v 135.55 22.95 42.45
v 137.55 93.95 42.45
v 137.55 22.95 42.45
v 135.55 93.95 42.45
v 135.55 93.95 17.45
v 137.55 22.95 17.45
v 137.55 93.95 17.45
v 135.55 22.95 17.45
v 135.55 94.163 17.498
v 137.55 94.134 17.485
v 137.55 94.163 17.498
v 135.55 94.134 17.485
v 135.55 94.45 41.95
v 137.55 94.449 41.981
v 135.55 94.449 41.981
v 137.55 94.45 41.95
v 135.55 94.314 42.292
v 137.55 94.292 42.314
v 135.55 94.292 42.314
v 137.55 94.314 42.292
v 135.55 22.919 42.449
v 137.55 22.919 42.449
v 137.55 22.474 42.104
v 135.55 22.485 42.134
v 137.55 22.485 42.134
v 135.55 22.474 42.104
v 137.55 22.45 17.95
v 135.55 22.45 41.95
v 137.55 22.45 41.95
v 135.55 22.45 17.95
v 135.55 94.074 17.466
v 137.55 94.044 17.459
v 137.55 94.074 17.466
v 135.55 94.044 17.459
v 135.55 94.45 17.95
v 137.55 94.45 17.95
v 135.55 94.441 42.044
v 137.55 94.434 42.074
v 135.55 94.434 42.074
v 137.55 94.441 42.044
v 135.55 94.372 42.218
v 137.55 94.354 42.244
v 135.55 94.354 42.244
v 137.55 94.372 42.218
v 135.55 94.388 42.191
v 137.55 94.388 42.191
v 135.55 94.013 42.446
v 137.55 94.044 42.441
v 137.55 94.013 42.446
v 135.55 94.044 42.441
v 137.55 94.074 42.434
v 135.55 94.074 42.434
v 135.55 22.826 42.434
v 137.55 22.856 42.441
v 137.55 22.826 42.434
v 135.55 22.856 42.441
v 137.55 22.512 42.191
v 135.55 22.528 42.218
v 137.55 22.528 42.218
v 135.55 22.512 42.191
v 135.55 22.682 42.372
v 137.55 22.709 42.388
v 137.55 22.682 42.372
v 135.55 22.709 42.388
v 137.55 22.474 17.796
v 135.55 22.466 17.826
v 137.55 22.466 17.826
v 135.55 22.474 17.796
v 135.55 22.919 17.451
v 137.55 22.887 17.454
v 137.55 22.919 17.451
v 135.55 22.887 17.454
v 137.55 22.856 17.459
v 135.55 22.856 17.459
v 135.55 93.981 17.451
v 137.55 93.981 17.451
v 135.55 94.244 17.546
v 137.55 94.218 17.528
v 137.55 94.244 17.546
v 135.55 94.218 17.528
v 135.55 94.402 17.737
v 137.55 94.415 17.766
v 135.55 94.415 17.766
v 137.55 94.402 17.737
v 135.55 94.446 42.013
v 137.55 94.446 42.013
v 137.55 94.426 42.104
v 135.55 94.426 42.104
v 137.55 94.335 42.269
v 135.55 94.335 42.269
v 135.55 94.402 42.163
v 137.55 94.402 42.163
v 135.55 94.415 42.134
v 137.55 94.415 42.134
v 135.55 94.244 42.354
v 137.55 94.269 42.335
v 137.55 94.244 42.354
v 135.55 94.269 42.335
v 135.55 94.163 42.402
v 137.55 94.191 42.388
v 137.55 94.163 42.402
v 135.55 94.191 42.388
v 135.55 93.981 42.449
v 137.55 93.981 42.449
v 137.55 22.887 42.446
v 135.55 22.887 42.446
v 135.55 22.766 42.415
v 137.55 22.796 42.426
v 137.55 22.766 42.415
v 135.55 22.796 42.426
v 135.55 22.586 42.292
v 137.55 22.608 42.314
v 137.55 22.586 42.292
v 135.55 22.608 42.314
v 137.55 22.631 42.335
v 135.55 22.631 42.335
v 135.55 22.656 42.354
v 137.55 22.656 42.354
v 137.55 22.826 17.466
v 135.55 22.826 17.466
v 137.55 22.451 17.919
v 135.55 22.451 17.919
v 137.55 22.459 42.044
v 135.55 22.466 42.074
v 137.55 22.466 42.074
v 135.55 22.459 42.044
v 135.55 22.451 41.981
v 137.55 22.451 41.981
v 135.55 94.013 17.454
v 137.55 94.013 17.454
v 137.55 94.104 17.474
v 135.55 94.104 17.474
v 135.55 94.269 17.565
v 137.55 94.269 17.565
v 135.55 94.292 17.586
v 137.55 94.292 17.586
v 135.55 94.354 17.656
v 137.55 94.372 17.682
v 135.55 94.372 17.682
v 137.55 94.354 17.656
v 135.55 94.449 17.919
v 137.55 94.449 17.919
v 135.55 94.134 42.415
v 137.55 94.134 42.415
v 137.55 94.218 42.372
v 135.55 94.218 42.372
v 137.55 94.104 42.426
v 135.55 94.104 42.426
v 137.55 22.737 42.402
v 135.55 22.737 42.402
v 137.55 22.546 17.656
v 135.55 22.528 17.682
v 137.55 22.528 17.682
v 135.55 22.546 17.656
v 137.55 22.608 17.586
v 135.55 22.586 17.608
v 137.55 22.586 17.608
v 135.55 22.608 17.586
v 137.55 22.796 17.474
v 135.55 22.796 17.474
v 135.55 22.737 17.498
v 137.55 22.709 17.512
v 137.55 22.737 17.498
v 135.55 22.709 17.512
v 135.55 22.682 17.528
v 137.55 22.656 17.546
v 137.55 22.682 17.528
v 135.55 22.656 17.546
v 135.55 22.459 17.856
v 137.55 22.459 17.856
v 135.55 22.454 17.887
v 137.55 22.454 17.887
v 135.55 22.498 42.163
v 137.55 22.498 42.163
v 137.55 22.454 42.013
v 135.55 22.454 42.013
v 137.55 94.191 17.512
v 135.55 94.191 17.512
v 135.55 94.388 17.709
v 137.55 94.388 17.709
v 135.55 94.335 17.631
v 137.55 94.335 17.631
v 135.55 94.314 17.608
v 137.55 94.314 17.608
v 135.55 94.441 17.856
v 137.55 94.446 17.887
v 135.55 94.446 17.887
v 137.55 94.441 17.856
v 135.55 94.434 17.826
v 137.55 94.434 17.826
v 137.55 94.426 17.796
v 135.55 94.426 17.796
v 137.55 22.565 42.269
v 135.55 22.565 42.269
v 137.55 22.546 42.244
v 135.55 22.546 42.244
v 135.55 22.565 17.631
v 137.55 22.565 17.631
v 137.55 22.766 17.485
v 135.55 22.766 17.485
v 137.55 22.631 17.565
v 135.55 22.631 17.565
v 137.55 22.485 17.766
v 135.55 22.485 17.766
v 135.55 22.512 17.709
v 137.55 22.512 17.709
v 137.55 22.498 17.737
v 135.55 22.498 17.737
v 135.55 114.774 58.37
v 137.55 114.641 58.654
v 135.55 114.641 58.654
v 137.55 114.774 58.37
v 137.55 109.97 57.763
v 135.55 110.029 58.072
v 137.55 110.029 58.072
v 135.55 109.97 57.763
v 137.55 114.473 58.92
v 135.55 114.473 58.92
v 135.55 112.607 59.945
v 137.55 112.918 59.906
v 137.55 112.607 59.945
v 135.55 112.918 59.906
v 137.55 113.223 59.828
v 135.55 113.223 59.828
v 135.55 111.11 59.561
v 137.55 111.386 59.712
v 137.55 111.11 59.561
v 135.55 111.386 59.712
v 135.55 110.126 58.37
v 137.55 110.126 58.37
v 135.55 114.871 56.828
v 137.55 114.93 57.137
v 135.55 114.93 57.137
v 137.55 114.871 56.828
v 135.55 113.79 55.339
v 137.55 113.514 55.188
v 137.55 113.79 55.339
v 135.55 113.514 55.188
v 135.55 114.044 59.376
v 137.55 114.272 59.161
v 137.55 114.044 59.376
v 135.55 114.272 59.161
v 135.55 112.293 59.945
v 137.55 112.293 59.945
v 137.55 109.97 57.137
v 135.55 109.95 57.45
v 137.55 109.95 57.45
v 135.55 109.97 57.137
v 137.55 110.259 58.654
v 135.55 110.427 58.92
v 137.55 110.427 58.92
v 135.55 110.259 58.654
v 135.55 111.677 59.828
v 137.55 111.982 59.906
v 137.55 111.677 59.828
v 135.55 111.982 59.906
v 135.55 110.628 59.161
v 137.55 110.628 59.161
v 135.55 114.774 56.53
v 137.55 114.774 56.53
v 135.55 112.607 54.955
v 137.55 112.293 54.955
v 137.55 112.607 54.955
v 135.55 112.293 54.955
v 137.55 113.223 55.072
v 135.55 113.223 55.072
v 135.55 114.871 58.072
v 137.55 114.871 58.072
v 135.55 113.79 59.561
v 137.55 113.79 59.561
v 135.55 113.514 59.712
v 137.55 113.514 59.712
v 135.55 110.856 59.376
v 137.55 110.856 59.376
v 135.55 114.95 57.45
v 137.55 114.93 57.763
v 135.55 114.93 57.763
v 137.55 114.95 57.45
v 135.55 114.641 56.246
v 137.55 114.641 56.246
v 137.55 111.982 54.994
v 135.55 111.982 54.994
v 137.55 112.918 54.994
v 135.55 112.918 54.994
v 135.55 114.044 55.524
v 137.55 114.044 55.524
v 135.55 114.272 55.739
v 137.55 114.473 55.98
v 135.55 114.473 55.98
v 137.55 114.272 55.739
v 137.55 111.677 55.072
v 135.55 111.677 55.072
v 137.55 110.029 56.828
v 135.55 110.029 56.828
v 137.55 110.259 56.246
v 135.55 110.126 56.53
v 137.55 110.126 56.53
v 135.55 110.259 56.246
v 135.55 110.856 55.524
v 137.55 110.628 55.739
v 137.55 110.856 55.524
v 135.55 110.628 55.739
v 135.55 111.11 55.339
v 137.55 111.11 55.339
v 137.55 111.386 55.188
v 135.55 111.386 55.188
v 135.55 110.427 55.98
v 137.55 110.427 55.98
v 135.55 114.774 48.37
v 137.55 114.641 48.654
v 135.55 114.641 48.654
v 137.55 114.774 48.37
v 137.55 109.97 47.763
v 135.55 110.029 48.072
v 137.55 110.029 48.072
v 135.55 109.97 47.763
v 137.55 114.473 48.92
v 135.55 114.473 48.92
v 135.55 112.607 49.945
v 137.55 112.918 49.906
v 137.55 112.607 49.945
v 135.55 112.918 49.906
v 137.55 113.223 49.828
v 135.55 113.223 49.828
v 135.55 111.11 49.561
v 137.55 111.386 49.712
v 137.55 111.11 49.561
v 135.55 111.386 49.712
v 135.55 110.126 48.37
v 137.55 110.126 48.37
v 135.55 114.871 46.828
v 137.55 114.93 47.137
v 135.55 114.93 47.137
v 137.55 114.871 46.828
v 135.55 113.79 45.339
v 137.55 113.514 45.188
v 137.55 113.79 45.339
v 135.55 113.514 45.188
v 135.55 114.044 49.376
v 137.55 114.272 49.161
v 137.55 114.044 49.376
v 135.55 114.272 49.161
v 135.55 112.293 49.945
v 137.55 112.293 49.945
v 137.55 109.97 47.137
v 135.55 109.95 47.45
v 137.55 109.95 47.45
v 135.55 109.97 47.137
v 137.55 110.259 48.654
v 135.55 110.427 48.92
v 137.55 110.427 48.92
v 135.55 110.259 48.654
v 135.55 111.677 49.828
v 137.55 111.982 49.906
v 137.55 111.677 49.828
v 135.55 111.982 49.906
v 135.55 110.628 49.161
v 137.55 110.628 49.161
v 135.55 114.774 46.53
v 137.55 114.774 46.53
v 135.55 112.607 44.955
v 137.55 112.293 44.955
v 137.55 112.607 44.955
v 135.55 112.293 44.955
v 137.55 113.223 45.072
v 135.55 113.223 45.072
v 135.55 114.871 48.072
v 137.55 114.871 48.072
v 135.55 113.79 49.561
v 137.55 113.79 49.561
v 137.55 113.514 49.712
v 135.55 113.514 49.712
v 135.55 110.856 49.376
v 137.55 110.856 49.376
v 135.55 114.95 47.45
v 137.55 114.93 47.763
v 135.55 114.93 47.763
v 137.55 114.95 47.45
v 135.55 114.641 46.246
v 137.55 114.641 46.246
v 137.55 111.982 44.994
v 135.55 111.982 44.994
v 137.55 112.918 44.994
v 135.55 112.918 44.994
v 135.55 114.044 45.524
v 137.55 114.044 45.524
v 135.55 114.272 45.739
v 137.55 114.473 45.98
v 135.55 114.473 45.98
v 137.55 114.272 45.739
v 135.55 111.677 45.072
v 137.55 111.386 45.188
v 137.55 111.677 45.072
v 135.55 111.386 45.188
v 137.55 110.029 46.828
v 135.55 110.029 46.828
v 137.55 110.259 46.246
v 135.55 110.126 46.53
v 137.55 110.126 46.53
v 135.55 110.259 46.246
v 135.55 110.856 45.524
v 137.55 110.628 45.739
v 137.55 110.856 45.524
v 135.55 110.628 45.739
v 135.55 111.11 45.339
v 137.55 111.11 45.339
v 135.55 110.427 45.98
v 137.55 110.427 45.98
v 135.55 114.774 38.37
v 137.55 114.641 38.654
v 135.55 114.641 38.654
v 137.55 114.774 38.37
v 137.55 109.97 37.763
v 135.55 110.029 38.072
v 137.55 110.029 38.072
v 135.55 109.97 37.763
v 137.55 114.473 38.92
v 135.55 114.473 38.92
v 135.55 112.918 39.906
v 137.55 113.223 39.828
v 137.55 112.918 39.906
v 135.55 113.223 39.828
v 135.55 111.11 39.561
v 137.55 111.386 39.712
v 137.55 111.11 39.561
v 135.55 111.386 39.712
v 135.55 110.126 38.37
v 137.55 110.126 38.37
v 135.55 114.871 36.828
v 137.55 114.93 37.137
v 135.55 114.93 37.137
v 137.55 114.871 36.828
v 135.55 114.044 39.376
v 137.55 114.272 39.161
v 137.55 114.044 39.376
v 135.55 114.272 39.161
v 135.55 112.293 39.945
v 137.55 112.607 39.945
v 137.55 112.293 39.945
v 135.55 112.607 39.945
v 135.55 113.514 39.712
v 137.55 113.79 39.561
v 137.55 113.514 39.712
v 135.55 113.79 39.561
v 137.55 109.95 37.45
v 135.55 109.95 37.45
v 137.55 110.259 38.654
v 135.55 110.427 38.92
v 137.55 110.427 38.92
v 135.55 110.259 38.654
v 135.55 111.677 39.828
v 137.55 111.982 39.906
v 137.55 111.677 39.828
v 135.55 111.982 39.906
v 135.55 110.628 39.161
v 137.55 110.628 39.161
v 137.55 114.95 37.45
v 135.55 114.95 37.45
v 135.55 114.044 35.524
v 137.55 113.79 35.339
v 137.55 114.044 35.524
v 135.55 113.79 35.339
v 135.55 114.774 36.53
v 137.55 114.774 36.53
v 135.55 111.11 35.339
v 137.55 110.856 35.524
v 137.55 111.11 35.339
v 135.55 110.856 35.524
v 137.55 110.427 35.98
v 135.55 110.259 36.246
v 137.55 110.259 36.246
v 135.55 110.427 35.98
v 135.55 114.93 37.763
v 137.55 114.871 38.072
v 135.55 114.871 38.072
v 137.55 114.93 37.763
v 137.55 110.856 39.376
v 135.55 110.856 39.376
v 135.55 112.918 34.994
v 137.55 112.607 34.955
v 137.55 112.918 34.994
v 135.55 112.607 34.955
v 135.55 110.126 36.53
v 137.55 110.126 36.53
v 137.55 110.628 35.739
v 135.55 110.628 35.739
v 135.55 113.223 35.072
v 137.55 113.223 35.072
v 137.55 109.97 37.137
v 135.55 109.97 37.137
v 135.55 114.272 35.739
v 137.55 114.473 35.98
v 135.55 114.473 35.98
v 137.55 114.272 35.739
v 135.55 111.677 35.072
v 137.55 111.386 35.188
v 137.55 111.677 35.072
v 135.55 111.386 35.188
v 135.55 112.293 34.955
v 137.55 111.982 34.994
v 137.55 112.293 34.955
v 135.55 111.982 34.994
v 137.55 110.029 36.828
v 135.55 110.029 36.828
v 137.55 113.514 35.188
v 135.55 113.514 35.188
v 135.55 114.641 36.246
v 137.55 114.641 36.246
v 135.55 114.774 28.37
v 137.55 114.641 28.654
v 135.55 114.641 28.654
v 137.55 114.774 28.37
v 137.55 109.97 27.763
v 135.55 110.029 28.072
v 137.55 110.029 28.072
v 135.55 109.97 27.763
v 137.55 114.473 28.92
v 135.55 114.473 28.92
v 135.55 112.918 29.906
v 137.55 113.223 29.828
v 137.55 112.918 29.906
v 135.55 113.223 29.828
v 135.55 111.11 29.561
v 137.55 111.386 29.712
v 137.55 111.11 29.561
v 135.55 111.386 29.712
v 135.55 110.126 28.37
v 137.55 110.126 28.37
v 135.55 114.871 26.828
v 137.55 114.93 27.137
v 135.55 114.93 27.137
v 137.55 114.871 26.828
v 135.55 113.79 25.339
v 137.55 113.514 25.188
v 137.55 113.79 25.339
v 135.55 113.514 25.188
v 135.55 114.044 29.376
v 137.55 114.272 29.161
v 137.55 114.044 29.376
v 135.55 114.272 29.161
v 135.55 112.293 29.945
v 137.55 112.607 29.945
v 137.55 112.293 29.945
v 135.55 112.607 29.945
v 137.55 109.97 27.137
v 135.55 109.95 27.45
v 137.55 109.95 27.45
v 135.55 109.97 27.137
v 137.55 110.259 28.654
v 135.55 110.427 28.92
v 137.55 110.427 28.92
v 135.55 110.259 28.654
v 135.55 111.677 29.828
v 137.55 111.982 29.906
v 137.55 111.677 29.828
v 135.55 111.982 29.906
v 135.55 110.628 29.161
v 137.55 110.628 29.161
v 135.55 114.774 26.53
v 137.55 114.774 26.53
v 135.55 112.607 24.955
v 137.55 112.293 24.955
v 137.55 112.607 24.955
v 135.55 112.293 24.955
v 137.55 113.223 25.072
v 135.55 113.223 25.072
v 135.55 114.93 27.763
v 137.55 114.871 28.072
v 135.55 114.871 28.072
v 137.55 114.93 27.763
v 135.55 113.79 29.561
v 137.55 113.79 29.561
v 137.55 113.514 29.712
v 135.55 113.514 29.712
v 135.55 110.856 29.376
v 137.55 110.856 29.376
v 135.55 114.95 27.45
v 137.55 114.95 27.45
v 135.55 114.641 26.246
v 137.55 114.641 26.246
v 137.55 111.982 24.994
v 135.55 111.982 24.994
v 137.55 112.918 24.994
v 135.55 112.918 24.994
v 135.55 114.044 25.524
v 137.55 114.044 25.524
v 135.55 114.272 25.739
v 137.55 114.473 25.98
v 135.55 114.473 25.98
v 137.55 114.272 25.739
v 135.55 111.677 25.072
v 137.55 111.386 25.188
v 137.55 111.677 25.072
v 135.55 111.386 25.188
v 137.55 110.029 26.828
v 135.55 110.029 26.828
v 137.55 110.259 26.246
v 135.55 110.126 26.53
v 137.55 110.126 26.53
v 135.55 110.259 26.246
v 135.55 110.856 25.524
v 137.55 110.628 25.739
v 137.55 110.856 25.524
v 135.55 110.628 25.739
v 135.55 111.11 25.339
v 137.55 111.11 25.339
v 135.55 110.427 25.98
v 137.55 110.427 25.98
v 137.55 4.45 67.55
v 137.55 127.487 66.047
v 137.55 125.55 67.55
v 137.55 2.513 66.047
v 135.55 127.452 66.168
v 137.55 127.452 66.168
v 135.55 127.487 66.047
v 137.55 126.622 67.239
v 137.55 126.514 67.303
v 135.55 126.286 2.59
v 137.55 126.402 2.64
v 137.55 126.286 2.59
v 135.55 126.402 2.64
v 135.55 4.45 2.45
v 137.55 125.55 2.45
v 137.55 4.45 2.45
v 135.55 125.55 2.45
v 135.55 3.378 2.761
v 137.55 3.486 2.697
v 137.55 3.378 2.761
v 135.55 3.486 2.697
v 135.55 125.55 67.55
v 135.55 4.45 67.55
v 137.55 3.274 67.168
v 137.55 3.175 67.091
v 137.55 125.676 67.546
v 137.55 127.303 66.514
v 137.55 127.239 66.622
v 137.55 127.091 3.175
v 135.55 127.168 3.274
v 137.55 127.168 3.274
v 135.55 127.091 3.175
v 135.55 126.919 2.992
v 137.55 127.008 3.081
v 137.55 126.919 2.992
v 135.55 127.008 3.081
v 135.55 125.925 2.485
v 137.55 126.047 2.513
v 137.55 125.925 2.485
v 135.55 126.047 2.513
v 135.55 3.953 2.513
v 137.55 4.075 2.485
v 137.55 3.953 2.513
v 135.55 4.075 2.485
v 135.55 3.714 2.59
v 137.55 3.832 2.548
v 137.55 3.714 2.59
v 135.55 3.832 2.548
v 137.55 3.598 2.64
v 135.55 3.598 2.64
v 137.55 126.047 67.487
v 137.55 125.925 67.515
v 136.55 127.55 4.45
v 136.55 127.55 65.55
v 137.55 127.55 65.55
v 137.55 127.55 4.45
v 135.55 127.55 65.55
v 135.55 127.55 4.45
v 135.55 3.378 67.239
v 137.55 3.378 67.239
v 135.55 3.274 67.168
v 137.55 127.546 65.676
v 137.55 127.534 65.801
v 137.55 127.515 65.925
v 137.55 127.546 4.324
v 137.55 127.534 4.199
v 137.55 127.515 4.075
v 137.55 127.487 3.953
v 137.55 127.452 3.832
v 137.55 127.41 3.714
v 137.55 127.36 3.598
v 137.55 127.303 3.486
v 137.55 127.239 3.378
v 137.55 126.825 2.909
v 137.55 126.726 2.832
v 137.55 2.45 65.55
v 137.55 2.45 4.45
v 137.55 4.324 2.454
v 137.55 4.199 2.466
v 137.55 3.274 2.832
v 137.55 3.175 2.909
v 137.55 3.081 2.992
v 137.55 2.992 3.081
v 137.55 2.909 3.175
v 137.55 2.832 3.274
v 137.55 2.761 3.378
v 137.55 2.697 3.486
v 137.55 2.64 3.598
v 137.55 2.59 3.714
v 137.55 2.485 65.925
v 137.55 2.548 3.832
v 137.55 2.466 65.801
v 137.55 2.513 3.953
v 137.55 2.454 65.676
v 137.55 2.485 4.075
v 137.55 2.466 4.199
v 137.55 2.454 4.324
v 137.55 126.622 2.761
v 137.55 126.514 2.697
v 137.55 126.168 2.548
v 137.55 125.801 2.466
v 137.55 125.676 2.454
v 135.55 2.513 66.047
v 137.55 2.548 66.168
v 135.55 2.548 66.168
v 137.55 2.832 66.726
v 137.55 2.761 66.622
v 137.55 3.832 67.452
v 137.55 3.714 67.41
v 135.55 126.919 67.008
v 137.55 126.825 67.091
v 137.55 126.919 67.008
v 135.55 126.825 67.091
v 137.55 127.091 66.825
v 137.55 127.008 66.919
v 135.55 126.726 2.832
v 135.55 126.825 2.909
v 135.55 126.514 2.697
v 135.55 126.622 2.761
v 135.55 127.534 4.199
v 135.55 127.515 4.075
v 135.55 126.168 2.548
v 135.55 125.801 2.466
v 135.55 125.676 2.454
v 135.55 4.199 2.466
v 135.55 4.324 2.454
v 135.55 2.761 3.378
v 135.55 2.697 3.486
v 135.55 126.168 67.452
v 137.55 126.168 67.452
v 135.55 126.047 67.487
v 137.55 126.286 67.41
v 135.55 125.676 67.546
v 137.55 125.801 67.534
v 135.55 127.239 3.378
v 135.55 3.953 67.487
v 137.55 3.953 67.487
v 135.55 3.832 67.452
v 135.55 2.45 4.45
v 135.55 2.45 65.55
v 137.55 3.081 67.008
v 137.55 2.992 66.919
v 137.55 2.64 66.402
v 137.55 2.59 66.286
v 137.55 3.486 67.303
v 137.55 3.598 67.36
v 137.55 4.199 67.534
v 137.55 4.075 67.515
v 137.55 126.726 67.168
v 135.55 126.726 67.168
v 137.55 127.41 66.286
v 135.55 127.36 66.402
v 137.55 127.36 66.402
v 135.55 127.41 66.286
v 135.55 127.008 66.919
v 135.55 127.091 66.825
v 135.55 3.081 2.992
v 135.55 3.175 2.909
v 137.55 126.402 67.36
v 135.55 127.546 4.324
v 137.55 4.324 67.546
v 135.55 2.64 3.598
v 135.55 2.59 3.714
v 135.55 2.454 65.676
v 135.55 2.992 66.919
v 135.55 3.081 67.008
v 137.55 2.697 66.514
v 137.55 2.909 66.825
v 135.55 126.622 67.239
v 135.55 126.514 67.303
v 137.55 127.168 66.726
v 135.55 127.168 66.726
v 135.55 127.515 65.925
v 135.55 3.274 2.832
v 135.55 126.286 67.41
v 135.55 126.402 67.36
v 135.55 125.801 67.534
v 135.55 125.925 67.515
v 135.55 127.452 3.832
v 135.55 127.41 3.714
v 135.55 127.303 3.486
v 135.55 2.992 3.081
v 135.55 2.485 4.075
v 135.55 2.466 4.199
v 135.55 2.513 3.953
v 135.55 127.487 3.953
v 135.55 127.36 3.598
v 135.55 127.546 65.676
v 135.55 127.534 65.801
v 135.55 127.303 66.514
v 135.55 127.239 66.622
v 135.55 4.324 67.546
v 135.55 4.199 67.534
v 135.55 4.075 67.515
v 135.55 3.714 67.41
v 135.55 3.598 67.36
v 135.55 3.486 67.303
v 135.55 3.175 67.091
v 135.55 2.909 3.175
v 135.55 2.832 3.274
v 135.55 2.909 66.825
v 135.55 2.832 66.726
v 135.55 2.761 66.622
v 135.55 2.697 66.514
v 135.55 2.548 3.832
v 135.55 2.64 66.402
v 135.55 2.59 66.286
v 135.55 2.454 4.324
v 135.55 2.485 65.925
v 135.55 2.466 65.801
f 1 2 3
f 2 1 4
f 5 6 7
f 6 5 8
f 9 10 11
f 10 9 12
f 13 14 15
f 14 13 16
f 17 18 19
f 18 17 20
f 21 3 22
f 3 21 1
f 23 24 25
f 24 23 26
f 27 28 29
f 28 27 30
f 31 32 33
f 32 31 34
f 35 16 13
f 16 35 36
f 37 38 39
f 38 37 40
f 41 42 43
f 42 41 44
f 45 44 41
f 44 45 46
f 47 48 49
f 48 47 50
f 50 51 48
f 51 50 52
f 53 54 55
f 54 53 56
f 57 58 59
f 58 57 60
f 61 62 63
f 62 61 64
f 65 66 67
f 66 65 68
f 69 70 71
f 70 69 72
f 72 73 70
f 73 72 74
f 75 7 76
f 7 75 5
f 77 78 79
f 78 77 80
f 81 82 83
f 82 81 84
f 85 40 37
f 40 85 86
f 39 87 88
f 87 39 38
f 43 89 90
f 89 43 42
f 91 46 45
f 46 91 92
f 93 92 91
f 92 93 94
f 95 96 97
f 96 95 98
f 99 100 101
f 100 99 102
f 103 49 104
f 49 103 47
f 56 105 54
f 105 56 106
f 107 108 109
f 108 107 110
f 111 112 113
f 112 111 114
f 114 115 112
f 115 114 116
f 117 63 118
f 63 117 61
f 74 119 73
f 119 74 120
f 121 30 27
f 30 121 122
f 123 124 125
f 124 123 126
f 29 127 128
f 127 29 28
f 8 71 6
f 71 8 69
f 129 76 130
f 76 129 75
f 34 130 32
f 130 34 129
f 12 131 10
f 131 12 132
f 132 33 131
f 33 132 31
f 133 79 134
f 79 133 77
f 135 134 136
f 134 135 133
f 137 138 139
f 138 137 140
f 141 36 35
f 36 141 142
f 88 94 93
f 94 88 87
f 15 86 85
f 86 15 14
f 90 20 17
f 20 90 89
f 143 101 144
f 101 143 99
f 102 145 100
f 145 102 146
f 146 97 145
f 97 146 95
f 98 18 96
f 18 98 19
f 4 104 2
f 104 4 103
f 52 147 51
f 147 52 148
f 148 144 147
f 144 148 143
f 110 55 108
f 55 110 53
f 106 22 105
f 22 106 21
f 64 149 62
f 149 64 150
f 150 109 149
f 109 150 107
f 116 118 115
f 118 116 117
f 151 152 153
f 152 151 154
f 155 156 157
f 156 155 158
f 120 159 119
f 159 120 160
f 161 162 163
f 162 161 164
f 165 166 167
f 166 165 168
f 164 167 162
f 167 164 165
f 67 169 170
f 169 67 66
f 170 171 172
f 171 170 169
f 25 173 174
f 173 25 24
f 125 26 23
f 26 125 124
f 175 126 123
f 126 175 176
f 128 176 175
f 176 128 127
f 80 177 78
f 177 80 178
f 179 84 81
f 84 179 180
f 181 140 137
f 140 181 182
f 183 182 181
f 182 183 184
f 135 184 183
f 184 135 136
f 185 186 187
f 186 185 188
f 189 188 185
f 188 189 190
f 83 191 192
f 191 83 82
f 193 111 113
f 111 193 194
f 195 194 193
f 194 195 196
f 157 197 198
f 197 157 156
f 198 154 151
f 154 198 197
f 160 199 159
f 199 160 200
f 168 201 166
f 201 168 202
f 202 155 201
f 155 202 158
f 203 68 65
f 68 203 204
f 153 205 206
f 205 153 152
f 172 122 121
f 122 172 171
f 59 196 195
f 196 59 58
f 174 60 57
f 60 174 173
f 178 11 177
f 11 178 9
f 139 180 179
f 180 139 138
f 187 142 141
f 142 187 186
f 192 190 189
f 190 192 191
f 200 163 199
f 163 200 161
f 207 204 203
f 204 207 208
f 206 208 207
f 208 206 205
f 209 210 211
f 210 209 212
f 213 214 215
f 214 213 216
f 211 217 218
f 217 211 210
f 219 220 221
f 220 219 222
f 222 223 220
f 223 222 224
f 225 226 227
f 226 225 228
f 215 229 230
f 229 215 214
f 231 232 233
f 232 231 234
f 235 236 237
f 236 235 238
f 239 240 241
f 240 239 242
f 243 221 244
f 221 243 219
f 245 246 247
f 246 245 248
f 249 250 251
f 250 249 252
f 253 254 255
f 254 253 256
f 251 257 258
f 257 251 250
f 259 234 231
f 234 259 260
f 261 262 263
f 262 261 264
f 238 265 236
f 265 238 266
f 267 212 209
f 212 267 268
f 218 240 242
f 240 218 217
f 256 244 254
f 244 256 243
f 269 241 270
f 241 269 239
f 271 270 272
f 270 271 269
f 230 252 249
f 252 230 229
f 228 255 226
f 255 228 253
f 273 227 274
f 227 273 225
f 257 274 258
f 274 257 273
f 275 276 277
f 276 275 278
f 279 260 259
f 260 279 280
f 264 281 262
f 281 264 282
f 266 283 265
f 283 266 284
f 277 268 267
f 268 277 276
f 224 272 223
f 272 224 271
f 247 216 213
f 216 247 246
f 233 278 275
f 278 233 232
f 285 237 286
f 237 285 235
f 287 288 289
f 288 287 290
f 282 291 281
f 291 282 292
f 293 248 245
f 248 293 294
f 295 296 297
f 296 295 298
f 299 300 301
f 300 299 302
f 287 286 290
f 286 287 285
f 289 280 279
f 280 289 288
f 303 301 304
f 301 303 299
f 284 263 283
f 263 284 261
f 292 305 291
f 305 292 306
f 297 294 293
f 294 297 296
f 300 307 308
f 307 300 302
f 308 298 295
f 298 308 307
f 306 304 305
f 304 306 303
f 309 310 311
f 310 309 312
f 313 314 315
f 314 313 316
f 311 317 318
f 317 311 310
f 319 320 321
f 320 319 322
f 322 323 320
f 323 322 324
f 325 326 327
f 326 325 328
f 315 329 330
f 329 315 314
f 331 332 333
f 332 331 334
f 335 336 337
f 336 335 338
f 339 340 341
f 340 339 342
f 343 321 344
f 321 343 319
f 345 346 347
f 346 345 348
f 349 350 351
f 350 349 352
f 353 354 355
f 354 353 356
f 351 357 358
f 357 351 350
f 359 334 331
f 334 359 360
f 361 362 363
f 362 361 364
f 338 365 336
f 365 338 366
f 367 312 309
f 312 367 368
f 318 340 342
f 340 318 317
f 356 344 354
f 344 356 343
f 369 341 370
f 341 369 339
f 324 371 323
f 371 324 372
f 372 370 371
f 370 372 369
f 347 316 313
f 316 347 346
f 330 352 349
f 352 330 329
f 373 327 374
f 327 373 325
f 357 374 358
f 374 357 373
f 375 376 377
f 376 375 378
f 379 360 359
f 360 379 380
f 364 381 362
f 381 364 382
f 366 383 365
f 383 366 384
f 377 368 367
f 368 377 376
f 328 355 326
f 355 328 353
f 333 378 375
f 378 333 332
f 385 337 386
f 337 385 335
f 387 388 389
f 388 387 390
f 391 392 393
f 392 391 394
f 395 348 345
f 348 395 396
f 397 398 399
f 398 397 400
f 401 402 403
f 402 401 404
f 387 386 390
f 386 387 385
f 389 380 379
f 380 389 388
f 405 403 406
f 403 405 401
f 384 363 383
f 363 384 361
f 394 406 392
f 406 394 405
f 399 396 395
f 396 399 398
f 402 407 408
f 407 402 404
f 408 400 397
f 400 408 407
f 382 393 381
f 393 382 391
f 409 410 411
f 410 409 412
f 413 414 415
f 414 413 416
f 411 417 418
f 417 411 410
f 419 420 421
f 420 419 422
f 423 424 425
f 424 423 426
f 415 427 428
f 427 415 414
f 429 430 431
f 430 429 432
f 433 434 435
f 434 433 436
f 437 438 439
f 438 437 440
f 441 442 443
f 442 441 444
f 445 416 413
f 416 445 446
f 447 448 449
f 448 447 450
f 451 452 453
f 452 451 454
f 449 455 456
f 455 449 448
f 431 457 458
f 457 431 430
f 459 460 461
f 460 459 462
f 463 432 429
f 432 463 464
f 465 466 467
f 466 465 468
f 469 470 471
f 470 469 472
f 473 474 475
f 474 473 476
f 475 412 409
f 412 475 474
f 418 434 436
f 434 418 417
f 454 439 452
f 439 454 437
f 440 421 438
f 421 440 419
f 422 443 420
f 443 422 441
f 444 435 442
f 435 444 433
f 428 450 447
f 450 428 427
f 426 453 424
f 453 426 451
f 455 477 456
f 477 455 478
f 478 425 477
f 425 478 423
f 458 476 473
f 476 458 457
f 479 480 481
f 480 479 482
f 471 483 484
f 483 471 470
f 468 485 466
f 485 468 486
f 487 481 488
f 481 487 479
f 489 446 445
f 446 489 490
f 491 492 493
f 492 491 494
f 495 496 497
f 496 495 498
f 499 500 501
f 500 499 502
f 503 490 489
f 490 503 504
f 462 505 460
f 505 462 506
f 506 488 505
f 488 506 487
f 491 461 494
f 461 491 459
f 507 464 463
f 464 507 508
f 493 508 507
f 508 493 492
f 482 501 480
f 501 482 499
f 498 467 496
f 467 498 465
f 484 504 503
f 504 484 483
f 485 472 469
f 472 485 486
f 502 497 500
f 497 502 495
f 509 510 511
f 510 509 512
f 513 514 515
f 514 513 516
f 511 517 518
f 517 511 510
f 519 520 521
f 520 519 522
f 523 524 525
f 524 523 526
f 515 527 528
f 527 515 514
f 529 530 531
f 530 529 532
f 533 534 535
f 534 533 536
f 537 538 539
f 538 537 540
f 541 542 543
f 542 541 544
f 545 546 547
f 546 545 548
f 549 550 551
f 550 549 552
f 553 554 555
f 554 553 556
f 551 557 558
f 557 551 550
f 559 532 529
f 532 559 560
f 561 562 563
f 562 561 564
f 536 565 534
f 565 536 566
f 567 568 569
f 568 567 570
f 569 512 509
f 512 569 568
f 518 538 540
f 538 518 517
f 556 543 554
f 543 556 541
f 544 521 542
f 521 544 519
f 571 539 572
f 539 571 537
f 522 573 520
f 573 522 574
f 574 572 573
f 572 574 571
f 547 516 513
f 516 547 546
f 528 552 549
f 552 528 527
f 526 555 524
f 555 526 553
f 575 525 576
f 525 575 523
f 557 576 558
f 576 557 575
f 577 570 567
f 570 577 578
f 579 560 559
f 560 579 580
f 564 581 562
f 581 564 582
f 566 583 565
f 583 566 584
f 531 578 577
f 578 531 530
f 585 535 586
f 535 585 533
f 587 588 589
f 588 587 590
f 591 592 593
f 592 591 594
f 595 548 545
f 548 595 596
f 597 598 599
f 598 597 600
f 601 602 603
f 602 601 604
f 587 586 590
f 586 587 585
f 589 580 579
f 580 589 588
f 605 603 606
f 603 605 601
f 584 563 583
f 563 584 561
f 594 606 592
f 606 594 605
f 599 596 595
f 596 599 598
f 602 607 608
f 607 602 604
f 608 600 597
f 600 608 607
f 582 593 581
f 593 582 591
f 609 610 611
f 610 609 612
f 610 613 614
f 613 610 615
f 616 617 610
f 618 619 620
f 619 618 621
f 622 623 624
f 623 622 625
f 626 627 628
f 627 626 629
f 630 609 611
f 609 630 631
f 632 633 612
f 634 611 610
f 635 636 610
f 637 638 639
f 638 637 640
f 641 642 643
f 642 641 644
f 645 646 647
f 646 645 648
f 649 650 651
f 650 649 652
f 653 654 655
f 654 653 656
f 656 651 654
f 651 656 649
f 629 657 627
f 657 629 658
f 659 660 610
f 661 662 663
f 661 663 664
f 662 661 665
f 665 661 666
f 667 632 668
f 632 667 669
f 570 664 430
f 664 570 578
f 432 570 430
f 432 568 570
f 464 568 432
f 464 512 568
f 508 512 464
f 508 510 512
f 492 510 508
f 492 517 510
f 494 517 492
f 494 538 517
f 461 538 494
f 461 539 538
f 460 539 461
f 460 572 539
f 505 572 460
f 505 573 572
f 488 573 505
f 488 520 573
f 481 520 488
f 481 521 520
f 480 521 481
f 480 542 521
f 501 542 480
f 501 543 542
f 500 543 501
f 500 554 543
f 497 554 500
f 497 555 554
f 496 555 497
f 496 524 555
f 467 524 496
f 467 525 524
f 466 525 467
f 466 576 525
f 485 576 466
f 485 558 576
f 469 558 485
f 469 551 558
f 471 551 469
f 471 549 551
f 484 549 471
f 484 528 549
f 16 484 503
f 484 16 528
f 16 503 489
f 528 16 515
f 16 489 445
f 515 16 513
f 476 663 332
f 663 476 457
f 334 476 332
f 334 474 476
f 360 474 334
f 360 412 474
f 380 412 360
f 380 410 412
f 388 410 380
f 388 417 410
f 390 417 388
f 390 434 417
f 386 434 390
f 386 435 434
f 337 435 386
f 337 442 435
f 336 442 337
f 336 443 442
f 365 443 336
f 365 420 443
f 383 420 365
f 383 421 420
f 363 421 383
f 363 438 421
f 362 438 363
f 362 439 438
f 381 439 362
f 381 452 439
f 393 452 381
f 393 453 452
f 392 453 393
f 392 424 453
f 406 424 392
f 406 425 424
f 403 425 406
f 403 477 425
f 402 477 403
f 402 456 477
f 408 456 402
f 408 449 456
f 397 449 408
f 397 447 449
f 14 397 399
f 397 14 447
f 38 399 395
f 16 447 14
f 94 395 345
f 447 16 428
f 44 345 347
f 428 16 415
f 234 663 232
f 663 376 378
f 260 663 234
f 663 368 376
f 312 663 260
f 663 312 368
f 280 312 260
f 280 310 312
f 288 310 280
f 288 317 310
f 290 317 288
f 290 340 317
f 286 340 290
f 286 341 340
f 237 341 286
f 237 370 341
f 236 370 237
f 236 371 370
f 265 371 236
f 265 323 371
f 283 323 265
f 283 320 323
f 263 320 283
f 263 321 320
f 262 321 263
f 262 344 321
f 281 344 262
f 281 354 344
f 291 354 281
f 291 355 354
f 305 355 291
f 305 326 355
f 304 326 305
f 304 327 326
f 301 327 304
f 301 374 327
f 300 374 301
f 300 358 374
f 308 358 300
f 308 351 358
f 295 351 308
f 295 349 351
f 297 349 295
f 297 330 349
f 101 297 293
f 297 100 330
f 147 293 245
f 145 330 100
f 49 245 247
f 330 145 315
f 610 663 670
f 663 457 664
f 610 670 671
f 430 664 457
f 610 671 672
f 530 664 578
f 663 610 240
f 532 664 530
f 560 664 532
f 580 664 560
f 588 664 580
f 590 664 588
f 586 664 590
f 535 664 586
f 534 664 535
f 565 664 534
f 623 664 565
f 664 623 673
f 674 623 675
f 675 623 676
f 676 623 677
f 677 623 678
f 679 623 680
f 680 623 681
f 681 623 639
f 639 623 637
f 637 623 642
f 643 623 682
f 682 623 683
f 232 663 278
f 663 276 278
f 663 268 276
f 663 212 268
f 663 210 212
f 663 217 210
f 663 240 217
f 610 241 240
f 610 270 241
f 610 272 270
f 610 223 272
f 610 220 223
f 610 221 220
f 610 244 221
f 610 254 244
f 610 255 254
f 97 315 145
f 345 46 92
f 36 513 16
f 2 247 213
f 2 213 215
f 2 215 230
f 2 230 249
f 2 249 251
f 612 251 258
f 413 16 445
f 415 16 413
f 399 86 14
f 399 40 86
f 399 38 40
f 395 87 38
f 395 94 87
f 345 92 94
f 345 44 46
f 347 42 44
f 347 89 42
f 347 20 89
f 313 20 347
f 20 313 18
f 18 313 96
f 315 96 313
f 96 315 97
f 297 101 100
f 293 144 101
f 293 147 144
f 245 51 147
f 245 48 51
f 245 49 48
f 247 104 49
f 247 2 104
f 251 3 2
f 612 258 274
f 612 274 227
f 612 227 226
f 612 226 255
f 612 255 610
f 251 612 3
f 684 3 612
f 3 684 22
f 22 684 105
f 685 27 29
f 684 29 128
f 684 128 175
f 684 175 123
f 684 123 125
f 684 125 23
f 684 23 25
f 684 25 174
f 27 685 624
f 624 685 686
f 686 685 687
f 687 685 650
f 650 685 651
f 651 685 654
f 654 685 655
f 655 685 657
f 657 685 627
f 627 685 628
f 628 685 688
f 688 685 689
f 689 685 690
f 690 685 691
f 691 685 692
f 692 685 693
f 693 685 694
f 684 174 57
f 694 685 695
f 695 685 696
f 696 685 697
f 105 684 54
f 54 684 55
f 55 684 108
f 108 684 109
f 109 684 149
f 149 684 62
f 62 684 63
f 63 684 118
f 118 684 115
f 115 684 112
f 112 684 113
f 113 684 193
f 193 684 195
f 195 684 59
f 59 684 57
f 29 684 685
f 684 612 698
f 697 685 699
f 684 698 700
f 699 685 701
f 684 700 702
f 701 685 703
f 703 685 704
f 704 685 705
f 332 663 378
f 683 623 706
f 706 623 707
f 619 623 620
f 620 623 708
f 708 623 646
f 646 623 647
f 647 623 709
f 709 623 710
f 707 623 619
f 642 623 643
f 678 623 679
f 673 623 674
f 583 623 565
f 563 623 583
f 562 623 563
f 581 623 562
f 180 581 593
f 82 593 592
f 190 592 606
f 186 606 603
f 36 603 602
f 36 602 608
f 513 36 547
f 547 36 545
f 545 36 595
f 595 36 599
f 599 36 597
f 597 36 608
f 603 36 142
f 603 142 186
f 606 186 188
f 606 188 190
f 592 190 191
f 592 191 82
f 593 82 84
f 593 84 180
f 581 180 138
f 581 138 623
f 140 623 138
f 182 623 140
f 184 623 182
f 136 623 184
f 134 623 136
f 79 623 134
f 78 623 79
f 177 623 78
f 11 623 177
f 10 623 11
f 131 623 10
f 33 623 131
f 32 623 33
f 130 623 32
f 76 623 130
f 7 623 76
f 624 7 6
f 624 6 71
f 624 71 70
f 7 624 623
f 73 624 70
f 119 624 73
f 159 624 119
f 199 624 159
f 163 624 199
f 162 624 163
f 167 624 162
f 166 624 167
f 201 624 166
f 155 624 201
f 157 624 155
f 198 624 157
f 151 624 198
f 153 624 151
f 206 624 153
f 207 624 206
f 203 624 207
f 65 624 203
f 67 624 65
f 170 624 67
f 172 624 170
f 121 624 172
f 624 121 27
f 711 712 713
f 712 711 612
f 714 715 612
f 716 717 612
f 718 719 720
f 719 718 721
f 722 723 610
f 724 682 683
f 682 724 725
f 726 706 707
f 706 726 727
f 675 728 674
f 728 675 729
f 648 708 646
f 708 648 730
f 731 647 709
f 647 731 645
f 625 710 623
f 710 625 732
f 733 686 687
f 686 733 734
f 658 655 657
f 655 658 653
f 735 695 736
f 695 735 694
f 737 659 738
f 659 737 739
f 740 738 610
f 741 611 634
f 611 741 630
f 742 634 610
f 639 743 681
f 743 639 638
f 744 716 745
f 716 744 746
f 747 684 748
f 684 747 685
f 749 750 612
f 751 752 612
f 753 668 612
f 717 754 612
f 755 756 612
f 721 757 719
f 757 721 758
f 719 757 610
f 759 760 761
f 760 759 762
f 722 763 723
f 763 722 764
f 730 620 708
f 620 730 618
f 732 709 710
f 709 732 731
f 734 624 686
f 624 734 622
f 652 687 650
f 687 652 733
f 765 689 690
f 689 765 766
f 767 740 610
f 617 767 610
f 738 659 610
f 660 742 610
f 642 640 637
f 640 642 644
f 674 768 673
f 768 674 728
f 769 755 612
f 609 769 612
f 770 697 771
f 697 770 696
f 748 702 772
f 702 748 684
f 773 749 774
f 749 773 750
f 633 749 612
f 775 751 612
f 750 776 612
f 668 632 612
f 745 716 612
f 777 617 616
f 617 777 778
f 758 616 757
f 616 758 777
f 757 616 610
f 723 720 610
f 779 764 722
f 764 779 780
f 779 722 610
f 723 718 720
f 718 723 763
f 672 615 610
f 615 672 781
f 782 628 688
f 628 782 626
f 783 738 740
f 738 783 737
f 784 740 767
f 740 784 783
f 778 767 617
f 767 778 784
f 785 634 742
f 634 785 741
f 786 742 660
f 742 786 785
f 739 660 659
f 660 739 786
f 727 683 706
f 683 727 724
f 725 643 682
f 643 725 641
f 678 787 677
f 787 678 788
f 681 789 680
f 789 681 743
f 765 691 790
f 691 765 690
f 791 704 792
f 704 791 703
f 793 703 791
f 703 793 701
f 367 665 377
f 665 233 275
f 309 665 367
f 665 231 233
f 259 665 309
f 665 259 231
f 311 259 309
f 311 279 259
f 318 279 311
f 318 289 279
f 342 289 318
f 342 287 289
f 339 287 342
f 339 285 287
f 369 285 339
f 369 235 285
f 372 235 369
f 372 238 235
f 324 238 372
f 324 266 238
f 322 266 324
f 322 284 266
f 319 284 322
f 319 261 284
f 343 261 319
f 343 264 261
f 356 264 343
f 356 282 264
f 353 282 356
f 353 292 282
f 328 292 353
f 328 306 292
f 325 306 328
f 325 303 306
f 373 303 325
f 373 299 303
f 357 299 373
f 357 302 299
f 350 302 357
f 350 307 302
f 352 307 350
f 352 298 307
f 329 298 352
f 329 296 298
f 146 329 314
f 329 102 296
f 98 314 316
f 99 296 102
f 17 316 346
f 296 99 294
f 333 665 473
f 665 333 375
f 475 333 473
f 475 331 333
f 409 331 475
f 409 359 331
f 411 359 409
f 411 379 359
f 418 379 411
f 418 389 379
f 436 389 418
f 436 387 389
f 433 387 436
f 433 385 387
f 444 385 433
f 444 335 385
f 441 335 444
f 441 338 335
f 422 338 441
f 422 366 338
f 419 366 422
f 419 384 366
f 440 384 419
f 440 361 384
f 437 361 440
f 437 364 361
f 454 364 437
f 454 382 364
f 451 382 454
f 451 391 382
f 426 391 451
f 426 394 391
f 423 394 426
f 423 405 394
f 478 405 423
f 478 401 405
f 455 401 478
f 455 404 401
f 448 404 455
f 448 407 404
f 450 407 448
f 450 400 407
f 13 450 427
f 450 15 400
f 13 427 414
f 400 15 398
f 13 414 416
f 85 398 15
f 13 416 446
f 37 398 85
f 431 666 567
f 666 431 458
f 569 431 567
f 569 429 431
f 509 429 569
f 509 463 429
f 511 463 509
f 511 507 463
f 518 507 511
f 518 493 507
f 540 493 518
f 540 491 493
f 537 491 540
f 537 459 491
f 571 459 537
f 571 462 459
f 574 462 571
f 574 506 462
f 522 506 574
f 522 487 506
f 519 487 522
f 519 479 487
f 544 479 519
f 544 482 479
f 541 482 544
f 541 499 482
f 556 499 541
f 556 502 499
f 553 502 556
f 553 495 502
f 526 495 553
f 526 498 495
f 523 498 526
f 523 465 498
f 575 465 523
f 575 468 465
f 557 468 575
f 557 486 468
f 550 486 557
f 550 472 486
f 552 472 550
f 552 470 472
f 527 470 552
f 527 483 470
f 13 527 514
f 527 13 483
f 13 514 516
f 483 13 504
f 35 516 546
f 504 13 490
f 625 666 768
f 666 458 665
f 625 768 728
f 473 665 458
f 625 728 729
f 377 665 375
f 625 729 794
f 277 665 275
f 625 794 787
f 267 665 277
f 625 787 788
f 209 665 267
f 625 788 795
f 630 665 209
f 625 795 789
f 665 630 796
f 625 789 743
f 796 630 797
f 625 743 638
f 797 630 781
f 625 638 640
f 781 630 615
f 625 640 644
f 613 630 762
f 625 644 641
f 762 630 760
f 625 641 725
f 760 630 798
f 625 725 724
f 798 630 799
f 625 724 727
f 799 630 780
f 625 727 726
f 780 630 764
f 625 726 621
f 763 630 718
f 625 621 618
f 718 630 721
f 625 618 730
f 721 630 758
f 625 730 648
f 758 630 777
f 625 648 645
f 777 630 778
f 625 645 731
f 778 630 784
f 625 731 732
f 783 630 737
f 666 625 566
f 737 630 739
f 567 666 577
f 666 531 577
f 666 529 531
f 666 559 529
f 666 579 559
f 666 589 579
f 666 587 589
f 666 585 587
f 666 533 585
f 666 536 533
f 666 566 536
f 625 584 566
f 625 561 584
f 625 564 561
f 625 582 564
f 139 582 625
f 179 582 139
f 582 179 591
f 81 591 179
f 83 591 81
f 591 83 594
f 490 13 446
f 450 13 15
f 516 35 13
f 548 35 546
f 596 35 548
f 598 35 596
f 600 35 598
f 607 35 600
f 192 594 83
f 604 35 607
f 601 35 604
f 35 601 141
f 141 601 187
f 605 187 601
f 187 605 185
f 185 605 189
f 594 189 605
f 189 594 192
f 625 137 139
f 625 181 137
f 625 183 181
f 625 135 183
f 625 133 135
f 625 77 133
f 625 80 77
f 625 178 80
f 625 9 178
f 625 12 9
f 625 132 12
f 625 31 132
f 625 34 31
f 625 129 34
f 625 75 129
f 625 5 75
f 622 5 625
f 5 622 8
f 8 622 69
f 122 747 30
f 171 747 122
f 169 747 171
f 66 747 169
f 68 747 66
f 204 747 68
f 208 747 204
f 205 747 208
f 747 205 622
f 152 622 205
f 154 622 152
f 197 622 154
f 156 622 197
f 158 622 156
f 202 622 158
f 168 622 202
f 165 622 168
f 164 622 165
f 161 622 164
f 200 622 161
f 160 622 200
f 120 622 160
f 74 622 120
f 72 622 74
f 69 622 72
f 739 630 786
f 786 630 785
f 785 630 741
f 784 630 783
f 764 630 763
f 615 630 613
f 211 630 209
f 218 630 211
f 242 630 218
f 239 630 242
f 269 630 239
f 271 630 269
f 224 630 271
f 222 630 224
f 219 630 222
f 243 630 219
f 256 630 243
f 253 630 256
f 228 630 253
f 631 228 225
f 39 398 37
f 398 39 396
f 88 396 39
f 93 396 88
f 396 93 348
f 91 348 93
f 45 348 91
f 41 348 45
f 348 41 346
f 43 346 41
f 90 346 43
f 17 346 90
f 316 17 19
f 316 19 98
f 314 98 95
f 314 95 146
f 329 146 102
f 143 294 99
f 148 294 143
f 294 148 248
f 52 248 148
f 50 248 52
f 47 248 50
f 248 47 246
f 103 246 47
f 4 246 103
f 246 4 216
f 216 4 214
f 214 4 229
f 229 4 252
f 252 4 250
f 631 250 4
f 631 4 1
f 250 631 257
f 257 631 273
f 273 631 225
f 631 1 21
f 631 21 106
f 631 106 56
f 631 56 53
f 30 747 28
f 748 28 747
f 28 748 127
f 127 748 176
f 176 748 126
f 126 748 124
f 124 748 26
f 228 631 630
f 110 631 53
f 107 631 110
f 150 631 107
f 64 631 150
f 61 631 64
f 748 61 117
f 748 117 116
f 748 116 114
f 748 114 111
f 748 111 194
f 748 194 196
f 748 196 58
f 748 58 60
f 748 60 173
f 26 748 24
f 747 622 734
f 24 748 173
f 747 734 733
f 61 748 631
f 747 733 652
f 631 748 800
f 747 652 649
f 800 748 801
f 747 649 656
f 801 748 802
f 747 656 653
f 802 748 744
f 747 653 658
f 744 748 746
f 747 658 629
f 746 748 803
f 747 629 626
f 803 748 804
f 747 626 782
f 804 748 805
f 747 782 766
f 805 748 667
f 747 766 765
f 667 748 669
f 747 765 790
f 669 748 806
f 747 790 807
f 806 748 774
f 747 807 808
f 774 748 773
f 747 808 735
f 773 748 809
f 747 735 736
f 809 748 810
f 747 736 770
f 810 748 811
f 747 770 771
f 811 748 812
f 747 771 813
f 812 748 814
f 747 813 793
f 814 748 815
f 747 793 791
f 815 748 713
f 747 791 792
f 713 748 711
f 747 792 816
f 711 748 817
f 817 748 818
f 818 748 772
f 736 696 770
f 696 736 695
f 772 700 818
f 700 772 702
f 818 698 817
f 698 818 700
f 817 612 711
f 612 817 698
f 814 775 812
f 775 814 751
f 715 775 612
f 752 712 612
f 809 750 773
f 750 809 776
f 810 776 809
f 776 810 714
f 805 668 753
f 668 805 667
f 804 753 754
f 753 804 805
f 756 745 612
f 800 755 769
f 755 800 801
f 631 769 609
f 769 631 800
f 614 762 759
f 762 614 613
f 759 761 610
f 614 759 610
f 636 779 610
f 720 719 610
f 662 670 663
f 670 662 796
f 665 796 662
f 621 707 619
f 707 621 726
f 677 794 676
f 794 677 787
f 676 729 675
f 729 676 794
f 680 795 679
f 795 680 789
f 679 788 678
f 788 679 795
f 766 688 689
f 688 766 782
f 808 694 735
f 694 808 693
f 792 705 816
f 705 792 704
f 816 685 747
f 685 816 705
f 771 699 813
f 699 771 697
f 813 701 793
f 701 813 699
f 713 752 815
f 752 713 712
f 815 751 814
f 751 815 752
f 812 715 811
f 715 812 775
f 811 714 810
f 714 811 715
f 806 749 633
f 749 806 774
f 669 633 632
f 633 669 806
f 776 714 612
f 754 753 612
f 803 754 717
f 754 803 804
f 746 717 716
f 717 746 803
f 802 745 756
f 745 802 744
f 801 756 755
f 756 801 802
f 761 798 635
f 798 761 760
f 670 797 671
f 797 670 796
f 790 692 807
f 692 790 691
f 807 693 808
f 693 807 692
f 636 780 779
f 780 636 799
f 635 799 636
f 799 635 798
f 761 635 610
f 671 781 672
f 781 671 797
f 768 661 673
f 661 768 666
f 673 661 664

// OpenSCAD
/*//////////////////////////////////////////////////////////////////
              -    FB Aka Heartman/Hearty 2016     -                   
              -   http://heartygfx.blogspot.com    -                  
              -       OpenScad Parametric Box      -                     
              -         CC BY-NC 3.0 License       -                      
////////////////////////////////////////////////////////////////////                                                                                                             
12/02/2016 - Fixed minor bug 
28/02/2016 - Added holes ventilation option                    
09/03/2016 - Added PCB feet support, fixed the shell artefact on export mode. 

*/////////////////////////// - Info - //////////////////////////////

// All coordinates are starting as integrated circuit pins.
// From the top view :

//   CoordD           <---       CoordC
//                                 ^
//                                 ^
//                                 ^
//   CoordA           --->       CoordB


////////////////////////////////////////////////////////////////////


////////// - Paramètres de la boite - Box parameters - /////////////

/* [Box dimensions] */
// - Longueur - Length  
  Length        = 140;       
// - Largeur - Width
  Width         = 130;                     
// - Hauteur - Height  
  Height        = 70;  
// - Epaisseur - Wall thickness  
  Thick         = 2;//[2:5]  
  
/* [Box options] */
// - Diamètre Coin arrondi - Filet diameter  
  Filet         = 2;//[0.1:12] 
// - lissage de l'arrondi - Filet smoothness  
  Resolution    = 50;//[1:100] 
// - Tolérance - Tolerance (Panel/rails gap)
  m             = 0.9;
// Pieds PCB - PCB feet (x4) 
  PCBFeet       = 0;// [0:No, 1:Yes]
// - Decorations to ventilation holes
  Vent          = 1;// [0:No, 1:Yes]
// - Decoration-Holes width (in mm)
  Vent_width    = 2.5;   


  
/* [PCB_Feet] */
//All dimensions are from the center foot axis

// - Coin bas gauche - Low left corner X position
PCBPosX         = 7;
// - Coin bas gauche - Low left corner Y position
PCBPosY         = 6;
// - Longueur PCB - PCB Length
PCBLength       = 70;
// - Largeur PCB - PCB Width
PCBWidth        = 70;
// - Heuteur pied - Feet height
FootHeight      = 10;
// - Diamètre pied - Foot diameter
FootDia         = 8;
// - Diamètre trou - Hole diameter
FootHole        = 3;  
  

/* [STL element to export] */
//Coque haut - Top shell
TShell          = 0;// [0:No, 1:Yes]
//Coque bas- Bottom shell
BShell          = 0;// [0:No, 1:Yes]
//Panneau avant - Front panel
FPanL           = 1;// [0:No, 1:Yes]
//Panneau arrière - Back panel  
BPanL           = 0;// [0:No, 1:Yes]


  
/* [Hidden] */
// - Couleur coque - Shell color  
Couleur1        = "Orange";       
// - Couleur panneaux - Panels color    
Couleur2        = "OrangeRed";    
// Thick X 2 - making decorations thicker if it is a vent to make sure they go through shell
Dec_Thick       = Vent ? Thick*2 : Thick; 
// - Depth decoration
Dec_size        = Vent ? Thick*2 : 0.8;





/////////// - Boitier générique bord arrondis - Generic rounded box - //////////

module RoundBox($a=Length, $b=Width, $c=Height){// Cube bords arrondis
                    $fn=Resolution;            
                    translate([0,Filet,Filet]){  
                    minkowski (){                                              
                        cube ([$a-(Length/2),$b-(2*Filet),$c-(2*Filet)], center = false);
                        rotate([0,90,0]){    
                        cylinder(r=Filet,h=Length/2, center = false);
                            } 
                        }
                    }
                }// End of RoundBox Module

      
////////////////////////////////// - Module Coque/Shell - //////////////////////////////////         

module Coque(){//Coque - Shell  
    Thick = Thick*2;  
    difference(){    
        difference(){//sides decoration
            union(){    
                     difference() {//soustraction de la forme centrale - Substraction Fileted box
                      
                        difference(){//soustraction cube median - Median cube slicer
                            union() {//union               
                            difference(){//Coque    
                                RoundBox();
                                translate([Thick/2,Thick/2,Thick/2]){     
                                        RoundBox($a=Length-Thick, $b=Width-Thick, $c=Height-Thick);
                                        }
                                        }//Fin diff Coque                            
                                difference(){//largeur Rails        
                                     translate([Thick+m,Thick/2,Thick/2]){// Rails
                                          RoundBox($a=Length-((2*Thick)+(2*m)), $b=Width-Thick, $c=Height-(Thick*2));
                                                          }//fin Rails
                                     translate([((Thick+m/2)*1.55),Thick/2,Thick/2+0.1]){ // +0.1 added to avoid the artefact
                                          RoundBox($a=Length-((Thick*3)+2*m), $b=Width-Thick, $c=Height-Thick);
                                                    }           
                                                }//Fin largeur Rails
                                    }//Fin union                                   
                               translate([-Thick,-Thick,Height/2]){// Cube à soustraire
                                    cube ([Length+100, Width+100, Height], center=false);
                                            }                                            
                                      }//fin soustraction cube median - End Median cube slicer
                               translate([-Thick/2,Thick,Thick]){// Forme de soustraction centrale 
                                    RoundBox($a=Length+Thick, $b=Width-Thick*2, $c=Height-Thick);       
                                    }                          
                                }                                          


                difference(){// wall fixation box legs
                    union(){
                        translate([3*Thick +5,Thick,Height/2]){
                            rotate([90,0,0]){
                                    $fn=6;
                                    cylinder(d=16,Thick/2);
                                    }   
                            }
                            
                       translate([Length-((3*Thick)+5),Thick,Height/2]){
                            rotate([90,0,0]){
                                    $fn=6;
                                    cylinder(d=16,Thick/2);
                                    }   
                            }

                        }
                            translate([4,Thick+Filet,Height/2-57]){   
                             rotate([45,0,0]){
                                   cube([Length,40,40]);    
                                  }
                           }
                           translate([0,-(Thick*1.46),Height/2]){
                                cube([Length,Thick*2,10]);
                           }
                    } //Fin fixation box legs
            }

        union(){// outbox sides decorations
            
            for(i=[0:Thick:Length/4]){

                // Ventilation holes part code submitted by Ettie - Thanks ;) 
                    translate([10+i,-Dec_Thick+Dec_size,1]){
                    cube([Vent_width,Dec_Thick,Height/4]);
                    }
                    translate([(Length-10) - i,-Dec_Thick+Dec_size,1]){
                    cube([Vent_width,Dec_Thick,Height/4]);
                    }
                    translate([(Length-10) - i,Width-Dec_size,1]){
                    cube([Vent_width,Dec_Thick,Height/4]);
                    }
                    translate([10+i,Width-Dec_size,1]){
                    cube([Vent_width,Dec_Thick,Height/4]);
                    }
  
                
                    }// fin de for
               // }
                }//fin union decoration
            }//fin difference decoration


            union(){ //sides holes
                $fn=50;
                translate([3*Thick+5,20,Height/2+4]){
                    rotate([90,0,0]){
                    cylinder(d=2,20);
                    }
                }
                translate([Length-((3*Thick)+5),20,Height/2+4]){
                    rotate([90,0,0]){
                    cylinder(d=2,20);
                    }
                }
                translate([3*Thick+5,Width+5,Height/2-4]){
                    rotate([90,0,0]){
                    cylinder(d=2,20);
                    }
                }
                translate([Length-((3*Thick)+5),Width+5,Height/2-4]){
                    rotate([90,0,0]){
                    cylinder(d=2,20);
                    }
                }
            }//fin de sides holes

        }//fin de difference holes
}// fin coque 

////////////////////////////// - Experiment - ///////////////////////////////////////////





/////////////////////// - Foot with base filet - /////////////////////////////
module foot(FootDia,FootHole,FootHeight){
    Filet=2;
    color(Couleur1)   
    translate([0,0,Filet-1.5])
    difference(){
    
    difference(){
            //translate ([0,0,-Thick]){
                cylinder(d=FootDia+Filet,FootHeight-Thick, $fn=100);
                        //}
                    rotate_extrude($fn=100){
                            translate([(FootDia+Filet*2)/2,Filet,0]){
                                    minkowski(){
                                            square(10);
                                            circle(Filet, $fn=100);
                                        }
                                 }
                           }
                   }
            cylinder(d=FootHole,FootHeight+1, $fn=100);
               }          
}// Fin module foot
  
module Feet(){     
//////////////////// - PCB only visible in the preview mode - /////////////////////    
    translate([3*Thick+2,Thick+5,FootHeight+(Thick/2)-0.5]){
    
    %square ([PCBLength+10,PCBWidth+10]);
       translate([PCBLength/2,PCBWidth/2,0.5]){ 
        color("Olive")
        %text("PCB", halign="center", valign="center", font="Arial black");
       }
    } // Fin PCB 
  
    
////////////////////////////// - 4 Feet - //////////////////////////////////////////     
    translate([3*Thick+7,Thick+10,Thick/2]){
        foot(FootDia,FootHole,FootHeight);
    }
    translate([(3*Thick)+PCBLength+7,Thick+10,Thick/2]){
        foot(FootDia,FootHole,FootHeight);
        }
    translate([(3*Thick)+PCBLength+7,(Thick)+PCBWidth+10,Thick/2]){
        foot(FootDia,FootHole,FootHeight);
        }        
    translate([3*Thick+7,(Thick)+PCBWidth+10,Thick/2]){
        foot(FootDia,FootHole,FootHeight);
    }   

} // Fin du module Feet
 


 
 ////////////////////////////////////////////////////////////////////////
////////////////////// <- Holes Panel Manager -> ///////////////////////
////////////////////////////////////////////////////////////////////////

//                           <- Panel ->  
module Panel(Length,Width,Thick,Filet){
    scale([0.5,1,1])
    minkowski(){
            cube([Thick,Width-(Thick*2+Filet*2+m),Height-(Thick*2+Filet*2+m)]);
            translate([0,Filet,Filet])
            rotate([0,90,0])
            cylinder(r=Filet,h=Thick, $fn=100);
      }
}



//                          <- Circle hole -> 
// Cx=Cylinder X position | Cy=Cylinder Y position | Cdia= Cylinder dia | Cheight=Cyl height
module CylinderHole(OnOff,Cx,Cy,Cdia){
    if(OnOff==1)
    translate([Cx,Cy,-1])
        cylinder(d=Cdia,10, $fn=50);
}
//                          <- Square hole ->  
// Sx=Square X position | Sy=Square Y position | Sl= Square Length | Sw=Square Width | Filet = Round corner
module SquareHole(OnOff,Sx,Sy,Sl,Sw,Filet){
    if(OnOff==1)
     minkowski(){
        translate([Sx+Filet/2,Sy+Filet/2,-1])
            cube([Sl-Filet,Sw-Filet,10]);
            cylinder(d=Filet,h=10, $fn=100);
       }
}


 
//                      <- Linear text panel -> 
module LText(OnOff,Tx,Ty,Font,Size,Content){
    if(OnOff==1)
    translate([Tx,Ty,Thick+.5])
    linear_extrude(height = 0.5){
    text(Content, size=Size, font=Font);
    }
}
//                     <- Circular text panel->  
module CText(OnOff,Tx,Ty,Font,Size,TxtRadius,Angl,Turn,Content){ 
      if(OnOff==1) {
      Angle = -Angl / len(Content);
      translate([Tx,Ty,Thick+.5])
          for (i= [0:len(Content)-1] ){   
              rotate([0,0,i*Angle+90+Turn])
              translate([0,TxtRadius,0]) {
                linear_extrude(height = 0.5){
                text(Content[i], font = Font, size = Size,  valign ="baseline", halign ="center");
                    }
                }   
             }
      }
}
////////////////////// <- New module Panel -> //////////////////////
module FPanL(){
    difference(){
        color(Couleur2)
        Panel(Length,Width,Thick,Filet);
    
 
    rotate([90,0,90]){
        color(Couleur2){
//                     <- Cutting shapes from here ->  
        SquareHole  (1,20,15,72,25,1); //(On/Off, Xpos,Ypos,Length,Width,Filet) PowerSwitch

        CylinderHole(1,110,55,5);       //(On/Off, Xpos, Ypos, Diameter) Power Outlet GND
        CylinderHole(1,110,45,5);       //(On/Off, Xpos, Ypos, Diameter) Power Outlet GND
        CylinderHole(1,110,35,5);       //(On/Off, Xpos, Ypos, Diameter) Power Outlet GND
        CylinderHole(1,110,25,5);       //(On/Off, Xpos, Ypos, Diameter) Power Outlet GND
//                            <- To here -> 
           }
       }
}

    color(Couleur1){
        translate ([-.5,0,0])
        rotate([90,0,90]){
//                      <- Adding text from here ->          
        LText(0,20,83,"Arial Black",4,"Digital Screen");//(On/Off, Xpos, Ypos, "Font", Size, "Text")
        LText(0,120,83,"Arial Black",4,"Level");
        LText(0,20,11,"Arial Black",6,"  1     2      3");
        CText(0,93,29,"Arial Black",4,10,180,0,"1 . 2 . 3 . 4 . 5 . 6");//(On/Off, Xpos, Ypos, "Font", Size, Diameter, Arc(Deg), Starting Angle(Deg),"Text")
//                            <- To here ->
            }
      }
}


/////////////////////////// <- Main part -> /////////////////////////

if(TShell==1)
// Coque haut - Top Shell
        color( Couleur1,1){
            translate([0,Width,Height+0.2]){
                rotate([0,180,180]){
                        Coque();
                        }
                }
        }

if(BShell==1)
// Coque bas - Bottom shell
        color(Couleur1){ 
        Coque();
        }

// Pied support PCB - PCB feet
if (PCBFeet==1)
// Feet
        translate([PCBPosX,PCBPosY,0]){ 
        Feet();
        }

// Panneau avant - Front panel  <<<<<< Text and holes only on this one.
//rotate([0,-90,-90]) 
if(FPanL==1)
        translate([Length-(Thick*2+m/2),Thick+m/2,Thick+m/2])
        FPanL();

//Panneau arrière - Back panel
if(BPanL==1)
        color(Couleur2)
        translate([Thick+m/2,Thick+m/2,Thick+m/2])
        Panel(Length,Width,Thick,Filet);
